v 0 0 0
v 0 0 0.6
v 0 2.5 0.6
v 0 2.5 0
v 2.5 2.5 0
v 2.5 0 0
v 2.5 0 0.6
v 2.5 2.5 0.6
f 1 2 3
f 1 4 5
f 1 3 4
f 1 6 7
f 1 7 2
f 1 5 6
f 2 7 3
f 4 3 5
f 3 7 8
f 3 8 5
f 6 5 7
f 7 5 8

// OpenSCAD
/* Warning, this is a very basic generator with a lot of approximation 
input data : [UQFN, MKA, 2.5x2.5x0.6mm, 16, , A, C04-01269A]
generated by com.zoubworld.electronics.cad.model3d.Basic
Date : Sun Feb 15 10:50:49 CET 2026
*/

//body
color("black")
translate([0,0,0])
cube([2.5,2.5,0.6], center=false);
